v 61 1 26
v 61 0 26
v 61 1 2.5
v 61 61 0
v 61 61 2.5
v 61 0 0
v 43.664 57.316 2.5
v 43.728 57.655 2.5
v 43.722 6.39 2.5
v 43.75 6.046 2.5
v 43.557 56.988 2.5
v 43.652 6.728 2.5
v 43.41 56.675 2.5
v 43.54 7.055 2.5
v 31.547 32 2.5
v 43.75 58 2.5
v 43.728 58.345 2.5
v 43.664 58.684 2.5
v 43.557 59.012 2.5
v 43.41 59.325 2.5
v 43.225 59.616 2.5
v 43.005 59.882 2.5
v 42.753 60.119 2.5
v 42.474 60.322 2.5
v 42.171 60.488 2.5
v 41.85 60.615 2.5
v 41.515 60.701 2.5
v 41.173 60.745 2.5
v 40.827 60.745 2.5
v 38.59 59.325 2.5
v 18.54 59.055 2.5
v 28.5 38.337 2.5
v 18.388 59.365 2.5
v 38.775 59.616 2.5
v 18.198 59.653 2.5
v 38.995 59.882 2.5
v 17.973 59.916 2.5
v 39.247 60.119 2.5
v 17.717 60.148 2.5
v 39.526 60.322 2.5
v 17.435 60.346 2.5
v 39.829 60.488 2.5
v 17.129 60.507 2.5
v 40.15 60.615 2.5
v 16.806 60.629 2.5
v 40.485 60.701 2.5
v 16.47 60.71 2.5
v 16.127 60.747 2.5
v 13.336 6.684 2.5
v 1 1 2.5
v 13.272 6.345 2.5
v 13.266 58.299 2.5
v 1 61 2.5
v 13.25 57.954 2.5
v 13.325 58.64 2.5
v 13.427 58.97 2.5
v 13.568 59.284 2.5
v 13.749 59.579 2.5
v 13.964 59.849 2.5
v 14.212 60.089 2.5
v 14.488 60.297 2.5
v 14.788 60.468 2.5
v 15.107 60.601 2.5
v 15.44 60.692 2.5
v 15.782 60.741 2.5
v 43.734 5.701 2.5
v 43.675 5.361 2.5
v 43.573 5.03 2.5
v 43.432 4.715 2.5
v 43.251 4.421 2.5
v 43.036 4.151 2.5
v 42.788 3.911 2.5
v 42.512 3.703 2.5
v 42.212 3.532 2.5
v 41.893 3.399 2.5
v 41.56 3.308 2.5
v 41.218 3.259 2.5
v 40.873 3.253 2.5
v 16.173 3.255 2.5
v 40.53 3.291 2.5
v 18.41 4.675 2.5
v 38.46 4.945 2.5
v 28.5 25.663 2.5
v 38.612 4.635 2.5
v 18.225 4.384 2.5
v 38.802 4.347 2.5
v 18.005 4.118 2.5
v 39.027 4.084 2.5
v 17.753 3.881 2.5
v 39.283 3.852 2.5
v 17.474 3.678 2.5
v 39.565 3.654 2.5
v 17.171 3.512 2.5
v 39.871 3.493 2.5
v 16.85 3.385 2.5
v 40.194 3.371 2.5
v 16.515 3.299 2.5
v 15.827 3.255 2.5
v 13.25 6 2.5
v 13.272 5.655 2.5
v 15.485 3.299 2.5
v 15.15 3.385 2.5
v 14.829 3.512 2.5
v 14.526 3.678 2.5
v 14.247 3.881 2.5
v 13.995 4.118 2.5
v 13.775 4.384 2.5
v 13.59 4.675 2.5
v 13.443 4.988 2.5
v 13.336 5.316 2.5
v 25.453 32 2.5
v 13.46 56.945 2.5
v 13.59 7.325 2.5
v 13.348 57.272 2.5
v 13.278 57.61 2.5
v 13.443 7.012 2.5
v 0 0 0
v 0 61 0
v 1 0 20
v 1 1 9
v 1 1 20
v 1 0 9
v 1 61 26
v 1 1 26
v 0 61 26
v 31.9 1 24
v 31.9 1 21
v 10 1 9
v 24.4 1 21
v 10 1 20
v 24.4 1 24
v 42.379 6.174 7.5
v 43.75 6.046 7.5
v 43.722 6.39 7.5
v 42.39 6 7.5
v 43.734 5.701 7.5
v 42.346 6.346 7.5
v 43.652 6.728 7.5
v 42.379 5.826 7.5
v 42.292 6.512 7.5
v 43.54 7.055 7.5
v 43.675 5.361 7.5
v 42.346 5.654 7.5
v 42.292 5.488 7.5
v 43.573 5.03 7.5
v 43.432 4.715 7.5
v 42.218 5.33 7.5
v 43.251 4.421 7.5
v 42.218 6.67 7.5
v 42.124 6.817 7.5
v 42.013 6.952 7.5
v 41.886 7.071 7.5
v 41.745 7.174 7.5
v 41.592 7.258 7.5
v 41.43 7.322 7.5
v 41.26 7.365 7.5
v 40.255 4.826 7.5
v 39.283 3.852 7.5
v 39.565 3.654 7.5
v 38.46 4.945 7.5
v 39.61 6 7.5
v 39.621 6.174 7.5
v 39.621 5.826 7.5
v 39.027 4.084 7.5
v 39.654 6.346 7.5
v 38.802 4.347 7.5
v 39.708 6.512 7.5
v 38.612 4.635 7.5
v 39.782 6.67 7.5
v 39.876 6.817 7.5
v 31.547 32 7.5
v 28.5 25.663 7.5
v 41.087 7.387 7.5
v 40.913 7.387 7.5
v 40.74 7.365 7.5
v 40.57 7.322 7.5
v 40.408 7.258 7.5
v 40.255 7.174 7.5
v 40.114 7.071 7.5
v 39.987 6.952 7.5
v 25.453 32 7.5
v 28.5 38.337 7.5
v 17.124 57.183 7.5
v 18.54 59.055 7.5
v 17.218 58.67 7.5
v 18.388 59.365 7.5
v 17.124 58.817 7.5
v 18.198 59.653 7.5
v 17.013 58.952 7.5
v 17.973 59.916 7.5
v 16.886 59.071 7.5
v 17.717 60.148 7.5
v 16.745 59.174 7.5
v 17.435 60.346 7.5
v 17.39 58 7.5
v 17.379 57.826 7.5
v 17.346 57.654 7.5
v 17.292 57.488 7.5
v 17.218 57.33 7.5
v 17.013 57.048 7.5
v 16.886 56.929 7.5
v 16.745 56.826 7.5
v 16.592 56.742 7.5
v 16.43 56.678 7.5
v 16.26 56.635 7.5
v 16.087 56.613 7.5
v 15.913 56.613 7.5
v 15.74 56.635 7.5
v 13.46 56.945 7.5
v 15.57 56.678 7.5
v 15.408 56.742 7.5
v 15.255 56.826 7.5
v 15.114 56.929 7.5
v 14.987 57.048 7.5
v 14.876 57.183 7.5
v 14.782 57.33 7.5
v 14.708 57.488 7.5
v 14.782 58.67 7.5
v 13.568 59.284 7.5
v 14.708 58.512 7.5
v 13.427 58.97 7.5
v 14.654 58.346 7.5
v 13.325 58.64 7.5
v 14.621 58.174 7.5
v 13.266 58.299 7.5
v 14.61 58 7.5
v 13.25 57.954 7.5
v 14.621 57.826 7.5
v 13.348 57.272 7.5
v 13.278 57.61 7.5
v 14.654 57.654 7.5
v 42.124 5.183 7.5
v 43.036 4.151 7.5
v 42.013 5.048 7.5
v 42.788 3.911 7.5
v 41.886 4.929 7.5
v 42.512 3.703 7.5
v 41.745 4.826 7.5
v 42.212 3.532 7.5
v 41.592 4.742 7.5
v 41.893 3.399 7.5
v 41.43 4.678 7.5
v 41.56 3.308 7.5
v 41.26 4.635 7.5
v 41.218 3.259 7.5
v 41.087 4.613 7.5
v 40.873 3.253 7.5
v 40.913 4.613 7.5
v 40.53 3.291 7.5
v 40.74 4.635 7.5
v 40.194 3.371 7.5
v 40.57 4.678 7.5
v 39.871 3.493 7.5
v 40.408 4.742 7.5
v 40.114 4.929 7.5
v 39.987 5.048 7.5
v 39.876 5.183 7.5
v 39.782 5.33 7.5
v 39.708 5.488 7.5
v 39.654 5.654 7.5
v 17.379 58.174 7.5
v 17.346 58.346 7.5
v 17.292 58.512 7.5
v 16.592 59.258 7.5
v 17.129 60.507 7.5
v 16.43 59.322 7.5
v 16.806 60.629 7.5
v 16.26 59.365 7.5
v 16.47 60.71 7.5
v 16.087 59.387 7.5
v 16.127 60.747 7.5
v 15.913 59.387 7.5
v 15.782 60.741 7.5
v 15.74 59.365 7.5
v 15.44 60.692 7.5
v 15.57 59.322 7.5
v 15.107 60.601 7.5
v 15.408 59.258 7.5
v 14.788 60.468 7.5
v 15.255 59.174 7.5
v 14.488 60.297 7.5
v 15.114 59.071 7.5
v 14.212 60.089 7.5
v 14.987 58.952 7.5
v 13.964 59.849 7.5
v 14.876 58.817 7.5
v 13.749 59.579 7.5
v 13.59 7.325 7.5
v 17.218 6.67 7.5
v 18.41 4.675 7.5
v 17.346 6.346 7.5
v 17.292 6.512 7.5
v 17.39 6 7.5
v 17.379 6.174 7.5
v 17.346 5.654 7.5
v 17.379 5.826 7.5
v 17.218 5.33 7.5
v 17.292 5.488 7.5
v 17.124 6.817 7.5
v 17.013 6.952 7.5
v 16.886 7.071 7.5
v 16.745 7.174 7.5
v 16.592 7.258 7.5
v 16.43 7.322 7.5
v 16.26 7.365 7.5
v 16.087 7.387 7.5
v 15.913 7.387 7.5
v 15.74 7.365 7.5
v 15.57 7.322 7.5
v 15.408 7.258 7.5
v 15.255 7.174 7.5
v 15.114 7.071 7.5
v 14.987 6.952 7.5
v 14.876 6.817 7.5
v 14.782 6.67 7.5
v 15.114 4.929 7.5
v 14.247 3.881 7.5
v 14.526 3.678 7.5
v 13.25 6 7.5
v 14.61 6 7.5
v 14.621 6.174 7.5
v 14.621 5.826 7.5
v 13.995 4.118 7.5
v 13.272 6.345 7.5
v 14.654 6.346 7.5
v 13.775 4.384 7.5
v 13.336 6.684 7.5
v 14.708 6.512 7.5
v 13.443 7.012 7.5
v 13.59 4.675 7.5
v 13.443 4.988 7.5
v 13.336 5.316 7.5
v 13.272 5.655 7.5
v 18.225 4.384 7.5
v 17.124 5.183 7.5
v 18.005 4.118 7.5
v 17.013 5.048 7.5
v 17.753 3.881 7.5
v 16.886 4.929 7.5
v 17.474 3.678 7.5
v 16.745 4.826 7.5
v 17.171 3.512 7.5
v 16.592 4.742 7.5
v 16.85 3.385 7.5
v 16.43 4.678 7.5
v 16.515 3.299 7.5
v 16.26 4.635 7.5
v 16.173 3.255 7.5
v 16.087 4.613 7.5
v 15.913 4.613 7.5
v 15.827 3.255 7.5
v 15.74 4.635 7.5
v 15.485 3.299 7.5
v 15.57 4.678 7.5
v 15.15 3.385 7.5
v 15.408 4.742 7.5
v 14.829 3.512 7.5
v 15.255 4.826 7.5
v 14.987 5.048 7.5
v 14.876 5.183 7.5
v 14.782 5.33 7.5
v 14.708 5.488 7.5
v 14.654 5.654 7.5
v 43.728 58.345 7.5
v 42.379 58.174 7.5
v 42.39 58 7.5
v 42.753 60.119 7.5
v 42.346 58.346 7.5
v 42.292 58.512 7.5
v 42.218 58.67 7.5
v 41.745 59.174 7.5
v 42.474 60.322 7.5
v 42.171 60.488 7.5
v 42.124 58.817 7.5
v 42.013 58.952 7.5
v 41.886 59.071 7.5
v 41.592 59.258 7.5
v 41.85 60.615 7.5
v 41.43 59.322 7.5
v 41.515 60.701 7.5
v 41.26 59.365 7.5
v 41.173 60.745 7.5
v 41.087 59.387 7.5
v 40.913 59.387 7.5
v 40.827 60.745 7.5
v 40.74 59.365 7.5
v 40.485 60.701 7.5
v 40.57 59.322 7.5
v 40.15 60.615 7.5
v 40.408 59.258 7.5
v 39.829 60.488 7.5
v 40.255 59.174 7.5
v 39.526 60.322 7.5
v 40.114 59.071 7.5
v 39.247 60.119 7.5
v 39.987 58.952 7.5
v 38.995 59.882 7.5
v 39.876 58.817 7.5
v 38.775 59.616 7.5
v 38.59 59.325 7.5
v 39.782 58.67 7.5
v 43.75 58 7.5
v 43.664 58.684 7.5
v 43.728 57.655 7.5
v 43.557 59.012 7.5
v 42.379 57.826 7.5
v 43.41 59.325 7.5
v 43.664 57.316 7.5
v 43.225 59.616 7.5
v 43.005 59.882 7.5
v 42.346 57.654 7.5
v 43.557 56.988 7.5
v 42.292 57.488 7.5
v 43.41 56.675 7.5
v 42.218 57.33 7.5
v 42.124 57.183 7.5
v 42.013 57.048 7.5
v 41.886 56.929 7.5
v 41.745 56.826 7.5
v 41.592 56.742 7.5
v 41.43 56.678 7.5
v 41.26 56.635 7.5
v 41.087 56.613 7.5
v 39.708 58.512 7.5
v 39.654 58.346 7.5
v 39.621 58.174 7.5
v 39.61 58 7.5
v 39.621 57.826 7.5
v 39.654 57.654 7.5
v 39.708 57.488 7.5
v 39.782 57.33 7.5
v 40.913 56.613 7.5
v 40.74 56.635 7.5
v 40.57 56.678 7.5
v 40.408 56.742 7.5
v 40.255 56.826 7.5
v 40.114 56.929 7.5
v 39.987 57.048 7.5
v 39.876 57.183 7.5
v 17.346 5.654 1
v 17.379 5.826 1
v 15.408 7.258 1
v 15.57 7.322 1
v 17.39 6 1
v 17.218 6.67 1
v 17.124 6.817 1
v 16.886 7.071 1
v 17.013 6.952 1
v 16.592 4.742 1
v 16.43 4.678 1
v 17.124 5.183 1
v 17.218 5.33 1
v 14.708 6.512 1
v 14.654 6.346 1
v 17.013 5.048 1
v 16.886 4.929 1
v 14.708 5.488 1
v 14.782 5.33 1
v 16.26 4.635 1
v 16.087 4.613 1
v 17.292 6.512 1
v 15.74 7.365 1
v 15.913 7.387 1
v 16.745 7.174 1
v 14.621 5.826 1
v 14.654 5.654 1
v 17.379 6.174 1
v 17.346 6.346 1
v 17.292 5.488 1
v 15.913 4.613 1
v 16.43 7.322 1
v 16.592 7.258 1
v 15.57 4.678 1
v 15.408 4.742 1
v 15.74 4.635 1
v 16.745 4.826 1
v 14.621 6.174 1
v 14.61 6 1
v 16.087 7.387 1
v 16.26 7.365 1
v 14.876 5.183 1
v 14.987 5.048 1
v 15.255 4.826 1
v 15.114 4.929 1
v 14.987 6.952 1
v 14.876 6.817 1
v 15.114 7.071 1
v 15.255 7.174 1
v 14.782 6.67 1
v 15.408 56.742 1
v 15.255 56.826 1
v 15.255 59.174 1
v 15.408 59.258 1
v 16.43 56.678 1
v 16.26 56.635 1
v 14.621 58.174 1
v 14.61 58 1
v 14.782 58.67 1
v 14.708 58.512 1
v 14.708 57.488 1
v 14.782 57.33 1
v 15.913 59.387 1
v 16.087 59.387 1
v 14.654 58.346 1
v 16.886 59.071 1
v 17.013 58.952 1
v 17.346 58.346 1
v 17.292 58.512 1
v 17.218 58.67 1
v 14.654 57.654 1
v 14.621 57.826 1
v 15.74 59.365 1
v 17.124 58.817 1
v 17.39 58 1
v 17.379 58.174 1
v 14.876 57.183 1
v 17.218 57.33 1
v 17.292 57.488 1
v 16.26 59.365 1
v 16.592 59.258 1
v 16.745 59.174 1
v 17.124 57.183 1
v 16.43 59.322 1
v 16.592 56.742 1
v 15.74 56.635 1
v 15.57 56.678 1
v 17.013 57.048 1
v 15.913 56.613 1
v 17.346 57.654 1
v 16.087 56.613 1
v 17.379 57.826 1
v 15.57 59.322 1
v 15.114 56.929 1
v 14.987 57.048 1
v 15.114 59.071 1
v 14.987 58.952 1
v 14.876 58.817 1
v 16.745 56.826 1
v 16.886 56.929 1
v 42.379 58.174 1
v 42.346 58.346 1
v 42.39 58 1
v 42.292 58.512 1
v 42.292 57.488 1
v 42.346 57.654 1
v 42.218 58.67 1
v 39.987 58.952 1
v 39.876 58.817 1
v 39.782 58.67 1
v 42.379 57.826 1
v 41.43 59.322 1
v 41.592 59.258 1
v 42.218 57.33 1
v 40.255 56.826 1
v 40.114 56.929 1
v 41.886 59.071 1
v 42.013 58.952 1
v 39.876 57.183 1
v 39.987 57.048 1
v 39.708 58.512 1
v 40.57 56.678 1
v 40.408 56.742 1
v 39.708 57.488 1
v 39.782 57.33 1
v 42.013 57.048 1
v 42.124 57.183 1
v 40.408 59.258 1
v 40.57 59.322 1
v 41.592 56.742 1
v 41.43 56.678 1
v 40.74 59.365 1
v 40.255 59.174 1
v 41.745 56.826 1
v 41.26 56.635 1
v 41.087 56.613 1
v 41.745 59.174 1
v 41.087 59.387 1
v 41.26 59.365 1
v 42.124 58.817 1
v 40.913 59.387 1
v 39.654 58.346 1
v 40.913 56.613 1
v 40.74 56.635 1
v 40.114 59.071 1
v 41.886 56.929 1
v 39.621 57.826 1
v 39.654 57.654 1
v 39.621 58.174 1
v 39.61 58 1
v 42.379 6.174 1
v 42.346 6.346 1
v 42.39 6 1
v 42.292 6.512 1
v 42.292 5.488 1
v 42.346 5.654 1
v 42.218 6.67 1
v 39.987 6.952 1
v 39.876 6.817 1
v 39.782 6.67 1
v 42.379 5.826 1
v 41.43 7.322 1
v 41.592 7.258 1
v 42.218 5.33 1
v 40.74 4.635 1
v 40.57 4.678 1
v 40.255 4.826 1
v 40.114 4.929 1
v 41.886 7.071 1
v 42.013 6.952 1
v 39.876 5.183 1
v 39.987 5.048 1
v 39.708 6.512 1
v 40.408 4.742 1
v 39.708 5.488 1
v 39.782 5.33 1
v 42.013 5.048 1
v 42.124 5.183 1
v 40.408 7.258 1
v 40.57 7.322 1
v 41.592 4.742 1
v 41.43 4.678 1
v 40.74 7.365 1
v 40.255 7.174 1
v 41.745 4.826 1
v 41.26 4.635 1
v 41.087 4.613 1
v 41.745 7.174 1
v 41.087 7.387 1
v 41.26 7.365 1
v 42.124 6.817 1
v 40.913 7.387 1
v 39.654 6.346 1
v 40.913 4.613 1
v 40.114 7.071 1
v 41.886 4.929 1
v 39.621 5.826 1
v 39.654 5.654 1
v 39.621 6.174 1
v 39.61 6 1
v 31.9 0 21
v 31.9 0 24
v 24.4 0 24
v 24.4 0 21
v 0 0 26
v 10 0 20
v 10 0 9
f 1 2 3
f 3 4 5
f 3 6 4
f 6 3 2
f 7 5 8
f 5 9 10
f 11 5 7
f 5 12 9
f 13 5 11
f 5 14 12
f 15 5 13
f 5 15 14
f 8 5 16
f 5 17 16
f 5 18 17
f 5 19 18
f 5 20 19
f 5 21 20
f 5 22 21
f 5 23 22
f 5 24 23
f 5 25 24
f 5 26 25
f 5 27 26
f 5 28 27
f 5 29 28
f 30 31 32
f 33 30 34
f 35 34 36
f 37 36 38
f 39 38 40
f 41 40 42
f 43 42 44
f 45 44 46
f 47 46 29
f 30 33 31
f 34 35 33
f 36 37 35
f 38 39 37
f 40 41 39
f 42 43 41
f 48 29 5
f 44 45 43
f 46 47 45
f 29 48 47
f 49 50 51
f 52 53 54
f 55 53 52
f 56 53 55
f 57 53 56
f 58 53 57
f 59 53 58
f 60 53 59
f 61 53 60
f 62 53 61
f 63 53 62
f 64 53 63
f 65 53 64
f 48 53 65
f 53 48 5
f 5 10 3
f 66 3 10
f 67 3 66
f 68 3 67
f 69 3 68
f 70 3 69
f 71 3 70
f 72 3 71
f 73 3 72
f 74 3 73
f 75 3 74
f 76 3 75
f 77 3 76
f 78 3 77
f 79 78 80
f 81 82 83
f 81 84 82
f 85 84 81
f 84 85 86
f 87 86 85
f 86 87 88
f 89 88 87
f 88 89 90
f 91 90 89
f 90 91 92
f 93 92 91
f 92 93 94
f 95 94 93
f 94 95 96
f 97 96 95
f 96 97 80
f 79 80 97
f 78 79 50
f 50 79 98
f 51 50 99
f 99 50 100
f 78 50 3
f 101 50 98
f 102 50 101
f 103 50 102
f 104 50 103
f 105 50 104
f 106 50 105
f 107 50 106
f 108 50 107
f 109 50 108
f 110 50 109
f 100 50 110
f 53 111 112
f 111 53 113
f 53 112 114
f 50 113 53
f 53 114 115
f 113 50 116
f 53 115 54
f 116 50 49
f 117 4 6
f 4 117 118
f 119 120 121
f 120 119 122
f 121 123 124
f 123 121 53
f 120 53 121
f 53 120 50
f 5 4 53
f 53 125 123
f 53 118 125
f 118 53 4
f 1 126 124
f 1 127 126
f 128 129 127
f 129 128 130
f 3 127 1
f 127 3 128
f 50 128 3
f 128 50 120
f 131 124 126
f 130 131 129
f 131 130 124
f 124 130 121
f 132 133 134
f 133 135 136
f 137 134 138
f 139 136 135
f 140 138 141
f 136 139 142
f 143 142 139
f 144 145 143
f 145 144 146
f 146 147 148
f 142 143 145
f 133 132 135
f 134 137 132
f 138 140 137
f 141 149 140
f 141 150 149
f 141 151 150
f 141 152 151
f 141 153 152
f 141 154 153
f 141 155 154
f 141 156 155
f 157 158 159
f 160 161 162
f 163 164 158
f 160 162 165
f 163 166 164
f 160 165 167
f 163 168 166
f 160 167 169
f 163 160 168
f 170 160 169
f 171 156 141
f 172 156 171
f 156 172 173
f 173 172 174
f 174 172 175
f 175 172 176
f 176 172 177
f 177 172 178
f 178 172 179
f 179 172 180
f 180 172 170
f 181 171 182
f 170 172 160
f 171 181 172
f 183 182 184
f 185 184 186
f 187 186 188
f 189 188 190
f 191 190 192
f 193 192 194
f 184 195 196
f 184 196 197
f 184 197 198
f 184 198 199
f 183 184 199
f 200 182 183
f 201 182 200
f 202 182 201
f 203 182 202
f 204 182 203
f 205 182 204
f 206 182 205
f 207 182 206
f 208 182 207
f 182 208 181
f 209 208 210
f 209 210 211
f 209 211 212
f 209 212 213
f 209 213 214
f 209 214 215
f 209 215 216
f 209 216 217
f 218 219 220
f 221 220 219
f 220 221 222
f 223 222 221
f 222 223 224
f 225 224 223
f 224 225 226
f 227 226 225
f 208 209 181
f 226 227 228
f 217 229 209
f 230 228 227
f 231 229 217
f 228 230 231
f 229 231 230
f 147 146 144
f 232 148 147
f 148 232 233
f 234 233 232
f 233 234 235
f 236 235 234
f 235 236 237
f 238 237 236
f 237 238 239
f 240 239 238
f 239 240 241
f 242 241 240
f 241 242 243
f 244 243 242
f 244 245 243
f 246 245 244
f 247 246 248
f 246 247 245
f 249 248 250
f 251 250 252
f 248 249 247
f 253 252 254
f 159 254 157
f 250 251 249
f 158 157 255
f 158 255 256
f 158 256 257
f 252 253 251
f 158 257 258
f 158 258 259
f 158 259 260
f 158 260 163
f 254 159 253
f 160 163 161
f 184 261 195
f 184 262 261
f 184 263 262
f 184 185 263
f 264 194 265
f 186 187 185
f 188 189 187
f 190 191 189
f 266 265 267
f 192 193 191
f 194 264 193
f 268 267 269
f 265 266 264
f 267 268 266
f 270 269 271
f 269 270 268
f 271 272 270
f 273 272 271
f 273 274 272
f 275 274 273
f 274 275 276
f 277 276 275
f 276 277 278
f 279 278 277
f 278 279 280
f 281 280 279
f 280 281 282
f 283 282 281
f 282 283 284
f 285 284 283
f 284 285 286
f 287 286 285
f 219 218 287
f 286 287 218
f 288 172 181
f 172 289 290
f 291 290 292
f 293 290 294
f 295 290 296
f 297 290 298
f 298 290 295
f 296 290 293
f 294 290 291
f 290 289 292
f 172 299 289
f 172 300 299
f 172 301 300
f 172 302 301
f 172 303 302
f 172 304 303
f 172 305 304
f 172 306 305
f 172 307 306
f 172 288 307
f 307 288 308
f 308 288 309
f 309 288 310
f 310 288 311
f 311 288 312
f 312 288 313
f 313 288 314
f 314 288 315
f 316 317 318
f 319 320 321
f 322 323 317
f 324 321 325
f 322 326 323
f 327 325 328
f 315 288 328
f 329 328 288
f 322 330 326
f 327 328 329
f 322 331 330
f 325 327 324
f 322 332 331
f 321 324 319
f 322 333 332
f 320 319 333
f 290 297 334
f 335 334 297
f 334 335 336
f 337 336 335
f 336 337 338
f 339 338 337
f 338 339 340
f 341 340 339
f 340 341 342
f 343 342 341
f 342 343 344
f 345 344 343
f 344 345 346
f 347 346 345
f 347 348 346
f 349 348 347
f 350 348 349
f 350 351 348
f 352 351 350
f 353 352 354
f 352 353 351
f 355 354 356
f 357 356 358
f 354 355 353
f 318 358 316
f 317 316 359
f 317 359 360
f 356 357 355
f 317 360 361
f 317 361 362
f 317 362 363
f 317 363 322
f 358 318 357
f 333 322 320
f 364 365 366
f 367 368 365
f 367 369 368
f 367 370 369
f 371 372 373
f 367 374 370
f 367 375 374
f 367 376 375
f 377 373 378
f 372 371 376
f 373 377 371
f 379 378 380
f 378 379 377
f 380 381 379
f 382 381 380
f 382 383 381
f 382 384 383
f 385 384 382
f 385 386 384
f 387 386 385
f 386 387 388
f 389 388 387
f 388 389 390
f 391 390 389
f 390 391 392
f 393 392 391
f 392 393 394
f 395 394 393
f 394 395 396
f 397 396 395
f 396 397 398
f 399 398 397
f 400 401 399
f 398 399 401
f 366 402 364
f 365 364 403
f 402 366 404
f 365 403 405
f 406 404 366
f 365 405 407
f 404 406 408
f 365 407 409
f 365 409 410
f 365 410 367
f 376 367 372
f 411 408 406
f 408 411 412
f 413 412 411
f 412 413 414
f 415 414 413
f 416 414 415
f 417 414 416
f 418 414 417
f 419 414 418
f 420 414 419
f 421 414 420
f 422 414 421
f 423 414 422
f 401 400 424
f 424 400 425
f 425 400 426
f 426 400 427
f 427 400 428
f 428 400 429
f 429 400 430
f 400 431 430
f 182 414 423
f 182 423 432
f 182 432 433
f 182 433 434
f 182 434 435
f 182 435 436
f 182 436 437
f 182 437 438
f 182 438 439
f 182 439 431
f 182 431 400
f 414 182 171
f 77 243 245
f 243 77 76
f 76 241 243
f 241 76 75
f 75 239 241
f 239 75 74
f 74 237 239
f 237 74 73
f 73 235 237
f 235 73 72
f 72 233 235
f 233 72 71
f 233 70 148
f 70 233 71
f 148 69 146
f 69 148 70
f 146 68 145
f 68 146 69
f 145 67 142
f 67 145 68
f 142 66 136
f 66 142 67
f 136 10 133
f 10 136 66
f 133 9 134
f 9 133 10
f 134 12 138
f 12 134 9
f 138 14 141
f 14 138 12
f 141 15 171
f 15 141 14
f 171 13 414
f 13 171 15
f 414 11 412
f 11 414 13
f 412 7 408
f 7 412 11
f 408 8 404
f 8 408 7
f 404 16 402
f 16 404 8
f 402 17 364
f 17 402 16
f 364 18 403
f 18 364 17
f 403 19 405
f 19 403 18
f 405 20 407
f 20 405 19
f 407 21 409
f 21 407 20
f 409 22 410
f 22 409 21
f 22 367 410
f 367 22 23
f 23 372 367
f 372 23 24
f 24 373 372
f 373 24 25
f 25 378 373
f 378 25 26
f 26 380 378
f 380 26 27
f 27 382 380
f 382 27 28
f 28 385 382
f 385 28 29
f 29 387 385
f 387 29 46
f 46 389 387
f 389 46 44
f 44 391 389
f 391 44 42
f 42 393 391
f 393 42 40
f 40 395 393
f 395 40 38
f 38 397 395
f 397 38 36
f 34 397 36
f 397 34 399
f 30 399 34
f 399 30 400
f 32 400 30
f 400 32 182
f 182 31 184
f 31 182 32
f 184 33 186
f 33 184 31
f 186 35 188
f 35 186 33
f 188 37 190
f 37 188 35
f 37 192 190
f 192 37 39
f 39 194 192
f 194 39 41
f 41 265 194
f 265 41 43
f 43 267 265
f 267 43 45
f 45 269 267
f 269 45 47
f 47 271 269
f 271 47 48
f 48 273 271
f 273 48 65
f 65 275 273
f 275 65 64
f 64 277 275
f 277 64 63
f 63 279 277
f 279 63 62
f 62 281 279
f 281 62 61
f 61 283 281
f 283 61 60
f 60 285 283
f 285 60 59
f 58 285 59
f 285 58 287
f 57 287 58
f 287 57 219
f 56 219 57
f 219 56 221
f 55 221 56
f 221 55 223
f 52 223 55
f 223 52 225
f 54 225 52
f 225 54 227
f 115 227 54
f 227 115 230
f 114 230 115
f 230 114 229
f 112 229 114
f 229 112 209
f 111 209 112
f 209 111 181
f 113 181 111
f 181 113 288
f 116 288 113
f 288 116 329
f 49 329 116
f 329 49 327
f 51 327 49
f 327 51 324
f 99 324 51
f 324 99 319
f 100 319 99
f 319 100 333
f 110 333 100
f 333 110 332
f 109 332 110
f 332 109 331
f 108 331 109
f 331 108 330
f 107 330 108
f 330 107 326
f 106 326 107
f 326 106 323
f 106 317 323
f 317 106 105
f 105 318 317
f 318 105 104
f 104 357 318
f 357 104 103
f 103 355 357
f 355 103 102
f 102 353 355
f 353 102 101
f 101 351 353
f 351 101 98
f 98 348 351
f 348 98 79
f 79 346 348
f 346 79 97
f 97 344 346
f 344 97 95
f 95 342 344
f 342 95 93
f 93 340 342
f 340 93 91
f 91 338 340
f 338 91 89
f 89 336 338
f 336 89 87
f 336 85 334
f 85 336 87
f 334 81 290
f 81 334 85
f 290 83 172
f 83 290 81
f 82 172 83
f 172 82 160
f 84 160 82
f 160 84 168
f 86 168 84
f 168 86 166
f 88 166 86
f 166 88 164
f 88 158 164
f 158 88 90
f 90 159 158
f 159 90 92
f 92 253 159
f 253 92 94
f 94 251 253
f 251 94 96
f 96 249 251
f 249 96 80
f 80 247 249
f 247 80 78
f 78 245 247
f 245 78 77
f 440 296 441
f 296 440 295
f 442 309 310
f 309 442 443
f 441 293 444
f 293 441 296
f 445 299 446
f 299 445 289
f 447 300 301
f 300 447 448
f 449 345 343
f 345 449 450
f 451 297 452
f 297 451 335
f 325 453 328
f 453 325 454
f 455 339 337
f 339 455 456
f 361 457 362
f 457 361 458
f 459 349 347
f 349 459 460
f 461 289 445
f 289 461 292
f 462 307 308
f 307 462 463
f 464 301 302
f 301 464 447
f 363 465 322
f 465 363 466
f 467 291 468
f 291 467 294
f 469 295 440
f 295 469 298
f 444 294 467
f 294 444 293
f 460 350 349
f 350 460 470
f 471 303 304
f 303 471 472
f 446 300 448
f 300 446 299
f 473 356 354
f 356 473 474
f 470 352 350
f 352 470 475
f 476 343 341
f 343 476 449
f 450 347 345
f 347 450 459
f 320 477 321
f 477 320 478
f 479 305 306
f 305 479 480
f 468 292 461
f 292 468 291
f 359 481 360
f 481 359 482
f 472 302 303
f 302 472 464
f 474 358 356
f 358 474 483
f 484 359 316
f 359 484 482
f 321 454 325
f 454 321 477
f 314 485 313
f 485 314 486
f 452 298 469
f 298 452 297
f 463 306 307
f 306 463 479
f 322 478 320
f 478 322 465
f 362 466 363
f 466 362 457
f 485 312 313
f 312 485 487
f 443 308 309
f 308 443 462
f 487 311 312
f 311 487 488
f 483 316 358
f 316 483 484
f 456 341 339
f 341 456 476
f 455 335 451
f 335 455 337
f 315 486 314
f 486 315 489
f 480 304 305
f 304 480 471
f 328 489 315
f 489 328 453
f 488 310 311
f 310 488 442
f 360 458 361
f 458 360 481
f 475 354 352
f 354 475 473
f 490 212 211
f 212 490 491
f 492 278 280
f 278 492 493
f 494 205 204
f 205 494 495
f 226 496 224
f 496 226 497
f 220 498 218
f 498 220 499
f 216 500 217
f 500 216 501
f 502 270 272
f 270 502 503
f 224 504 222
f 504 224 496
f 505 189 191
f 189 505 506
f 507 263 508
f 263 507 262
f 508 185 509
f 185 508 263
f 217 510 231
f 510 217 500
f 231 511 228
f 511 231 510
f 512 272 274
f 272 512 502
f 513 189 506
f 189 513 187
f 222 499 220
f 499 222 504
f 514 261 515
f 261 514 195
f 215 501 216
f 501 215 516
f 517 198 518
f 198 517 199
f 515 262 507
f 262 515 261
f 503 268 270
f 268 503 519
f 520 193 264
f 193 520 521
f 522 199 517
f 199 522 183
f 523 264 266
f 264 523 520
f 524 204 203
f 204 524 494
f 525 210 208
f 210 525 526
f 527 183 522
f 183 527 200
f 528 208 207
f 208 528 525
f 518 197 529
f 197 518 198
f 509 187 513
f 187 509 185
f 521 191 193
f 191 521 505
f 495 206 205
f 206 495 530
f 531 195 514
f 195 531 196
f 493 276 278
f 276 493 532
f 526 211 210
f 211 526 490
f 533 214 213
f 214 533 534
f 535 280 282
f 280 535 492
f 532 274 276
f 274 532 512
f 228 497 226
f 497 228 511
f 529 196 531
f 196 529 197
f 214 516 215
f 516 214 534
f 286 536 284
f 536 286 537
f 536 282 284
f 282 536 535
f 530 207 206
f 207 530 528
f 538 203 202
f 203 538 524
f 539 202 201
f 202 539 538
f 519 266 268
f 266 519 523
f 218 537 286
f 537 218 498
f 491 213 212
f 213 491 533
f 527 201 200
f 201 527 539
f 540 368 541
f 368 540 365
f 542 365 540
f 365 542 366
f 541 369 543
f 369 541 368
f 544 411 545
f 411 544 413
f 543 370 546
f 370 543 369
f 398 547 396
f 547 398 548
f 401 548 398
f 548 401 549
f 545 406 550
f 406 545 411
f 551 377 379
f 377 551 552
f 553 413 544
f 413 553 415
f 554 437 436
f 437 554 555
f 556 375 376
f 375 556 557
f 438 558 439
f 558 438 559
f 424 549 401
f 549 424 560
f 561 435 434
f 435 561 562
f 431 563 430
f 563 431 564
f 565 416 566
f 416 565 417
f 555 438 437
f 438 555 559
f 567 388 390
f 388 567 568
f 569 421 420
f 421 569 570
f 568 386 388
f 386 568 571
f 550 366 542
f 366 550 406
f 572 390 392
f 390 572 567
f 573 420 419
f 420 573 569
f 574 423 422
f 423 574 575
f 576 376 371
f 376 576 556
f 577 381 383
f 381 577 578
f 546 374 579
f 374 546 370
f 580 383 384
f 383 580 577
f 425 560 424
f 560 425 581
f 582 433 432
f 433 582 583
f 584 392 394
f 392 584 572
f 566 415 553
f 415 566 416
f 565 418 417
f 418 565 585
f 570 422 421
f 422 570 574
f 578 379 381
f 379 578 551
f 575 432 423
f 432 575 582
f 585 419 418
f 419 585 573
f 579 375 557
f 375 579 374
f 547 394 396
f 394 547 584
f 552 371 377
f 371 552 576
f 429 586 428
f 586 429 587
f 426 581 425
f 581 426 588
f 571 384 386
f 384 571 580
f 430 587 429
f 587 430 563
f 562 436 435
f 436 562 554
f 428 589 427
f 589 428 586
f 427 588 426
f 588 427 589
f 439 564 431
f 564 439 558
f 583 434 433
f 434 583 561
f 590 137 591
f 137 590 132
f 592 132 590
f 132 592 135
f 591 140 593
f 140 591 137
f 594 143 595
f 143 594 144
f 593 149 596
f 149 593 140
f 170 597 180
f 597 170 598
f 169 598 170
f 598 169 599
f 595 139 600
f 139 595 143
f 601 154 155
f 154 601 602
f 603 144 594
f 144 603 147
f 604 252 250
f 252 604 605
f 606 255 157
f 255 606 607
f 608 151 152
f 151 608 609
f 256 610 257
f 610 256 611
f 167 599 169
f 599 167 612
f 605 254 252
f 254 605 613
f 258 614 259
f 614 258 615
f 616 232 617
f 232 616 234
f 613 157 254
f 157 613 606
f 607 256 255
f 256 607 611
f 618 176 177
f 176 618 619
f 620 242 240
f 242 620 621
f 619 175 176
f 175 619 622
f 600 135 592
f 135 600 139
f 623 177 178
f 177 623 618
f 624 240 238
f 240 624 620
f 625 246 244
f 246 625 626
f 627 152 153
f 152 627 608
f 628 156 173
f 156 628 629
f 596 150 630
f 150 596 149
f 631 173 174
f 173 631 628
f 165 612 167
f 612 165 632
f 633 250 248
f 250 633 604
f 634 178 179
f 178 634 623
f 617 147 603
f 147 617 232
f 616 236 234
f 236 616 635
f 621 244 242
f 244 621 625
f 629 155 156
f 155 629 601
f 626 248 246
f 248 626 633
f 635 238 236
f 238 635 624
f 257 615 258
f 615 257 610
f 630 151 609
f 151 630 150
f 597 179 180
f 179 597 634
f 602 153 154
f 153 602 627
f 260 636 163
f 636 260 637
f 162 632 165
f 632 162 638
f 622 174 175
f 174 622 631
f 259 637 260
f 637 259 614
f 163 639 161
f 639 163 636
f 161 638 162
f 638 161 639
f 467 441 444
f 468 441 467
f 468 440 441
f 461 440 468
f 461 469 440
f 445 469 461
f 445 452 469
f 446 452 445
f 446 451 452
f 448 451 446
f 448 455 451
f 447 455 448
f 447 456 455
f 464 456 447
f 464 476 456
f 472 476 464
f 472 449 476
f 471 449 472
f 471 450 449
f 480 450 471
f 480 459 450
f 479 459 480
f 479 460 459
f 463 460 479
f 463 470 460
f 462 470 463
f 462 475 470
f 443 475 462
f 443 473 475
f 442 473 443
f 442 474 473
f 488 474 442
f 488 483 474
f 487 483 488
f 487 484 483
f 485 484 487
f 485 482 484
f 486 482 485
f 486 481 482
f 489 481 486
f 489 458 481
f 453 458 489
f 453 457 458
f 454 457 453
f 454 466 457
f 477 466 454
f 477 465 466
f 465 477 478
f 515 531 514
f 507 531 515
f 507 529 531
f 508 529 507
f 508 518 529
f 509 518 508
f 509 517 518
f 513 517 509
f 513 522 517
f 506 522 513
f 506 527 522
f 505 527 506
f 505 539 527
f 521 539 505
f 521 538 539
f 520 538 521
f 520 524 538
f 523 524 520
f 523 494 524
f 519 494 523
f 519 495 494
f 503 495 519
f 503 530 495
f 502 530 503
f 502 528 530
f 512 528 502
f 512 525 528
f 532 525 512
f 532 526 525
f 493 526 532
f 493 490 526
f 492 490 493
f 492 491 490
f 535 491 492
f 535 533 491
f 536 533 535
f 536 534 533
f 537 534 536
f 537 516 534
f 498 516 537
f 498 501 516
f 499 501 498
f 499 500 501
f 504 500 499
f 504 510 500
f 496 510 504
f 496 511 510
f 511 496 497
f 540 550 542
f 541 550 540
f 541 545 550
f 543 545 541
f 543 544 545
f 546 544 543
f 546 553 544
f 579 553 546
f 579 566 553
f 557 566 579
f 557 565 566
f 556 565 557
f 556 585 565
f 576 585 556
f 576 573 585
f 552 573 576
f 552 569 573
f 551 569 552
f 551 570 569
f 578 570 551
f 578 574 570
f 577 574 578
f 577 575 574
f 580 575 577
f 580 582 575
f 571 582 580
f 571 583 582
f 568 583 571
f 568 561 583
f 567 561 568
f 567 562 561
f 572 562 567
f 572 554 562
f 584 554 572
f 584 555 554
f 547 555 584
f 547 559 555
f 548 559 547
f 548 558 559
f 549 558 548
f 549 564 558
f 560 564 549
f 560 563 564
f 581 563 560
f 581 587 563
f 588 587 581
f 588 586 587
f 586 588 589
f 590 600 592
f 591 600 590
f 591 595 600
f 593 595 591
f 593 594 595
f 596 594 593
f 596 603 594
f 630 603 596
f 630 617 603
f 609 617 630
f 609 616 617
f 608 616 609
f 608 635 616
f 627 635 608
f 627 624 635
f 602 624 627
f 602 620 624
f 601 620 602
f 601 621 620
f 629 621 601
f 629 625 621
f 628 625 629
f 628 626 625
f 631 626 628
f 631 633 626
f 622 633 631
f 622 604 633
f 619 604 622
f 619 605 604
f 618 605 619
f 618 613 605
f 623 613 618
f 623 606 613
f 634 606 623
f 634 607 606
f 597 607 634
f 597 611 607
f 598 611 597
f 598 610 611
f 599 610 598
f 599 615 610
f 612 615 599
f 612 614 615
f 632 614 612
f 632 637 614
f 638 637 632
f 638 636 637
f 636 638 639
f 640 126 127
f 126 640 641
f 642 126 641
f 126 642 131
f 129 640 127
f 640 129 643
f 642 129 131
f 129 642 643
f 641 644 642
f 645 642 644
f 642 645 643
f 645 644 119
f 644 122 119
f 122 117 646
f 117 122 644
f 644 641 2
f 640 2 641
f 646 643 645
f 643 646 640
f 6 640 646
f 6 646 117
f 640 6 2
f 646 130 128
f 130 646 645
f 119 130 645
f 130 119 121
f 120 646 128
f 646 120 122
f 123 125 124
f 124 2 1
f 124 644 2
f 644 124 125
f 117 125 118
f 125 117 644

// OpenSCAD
// file: screw_matrics.scad
 
// #4 screw parameters
number4_screw_hole_tap_diameter=2.78;
number4_screw_thread_diamater=2.84;
// No-drag through-hole diameter
number4_screw_hole_diameter=number4_screw_thread_diamater+0.7;
number4_screw_stem_length=8;
number4_screw_head_diameter=5.5;

// M3 screw parameters
m3_screw_hole_tap_diameter=2.9;
m3_screw_thread_diamater=3;
// No-drag through-hole diameter
m3_screw_hole_diameter=m3_screw_thread_diamater+0.7;
m3_screw_stem_length=5;
m3_screw_head_diameter=5.5;
// file: roundedCube.scad
/*
	Usage
	=====
	Prototype: roundedCube(dim, r, x, y, z, xcorners, ycorners, zcorners, $fn)
	Arguments:
		-      dim = Array of x,y,z numbers representing cube size
		-        r = Radius of corners. Default: 1
		-        x = Round the corners along the X axis of the cube. Default: false
		-        y = Round the corners along the Y axis of the cube. Default: false
		-        z = Round the corners along the Z axis of the cube. Default: true
		- xcorners = Array of 4 booleans, one for each X side of the cube, if true then round that side. Default: [true, true, true, true]
		- ycorners = Array of 4 booleans, one for each Y side of the cube, if true then round that side. Default: [true, true, true, true]
		- zcorners = Array of 4 booleans, one for each Z side of the cube, if true then round that side. Default: [true, true, true, true]
		-   center = Whether to render the cube centered or not. Default: false
		-      $fn = How smooth you want the rounding to be. Default: 128

	Thanks to robert@cosmicrealms.com from https://github.com/Sembiance/openscad-modules
    For a starting point for the project
*/

// Example code:

/*cube([5, 10, 4]);

translate([8, 0, 0]) { roundedCube([5, 10, 4], r=1); }
translate([16, 0, 0]) { roundedCube([5, 10, 4], r=1, zcorners=[true, false, true, false]); }

translate([24, 0, 0]) { roundedCube([5, 10, 4], r=1, y=true, z=false); }
translate([32, 0, 0]) { roundedCube([5, 10, 4], r=1, x=true, z=false); }
translate([40, 0, 0]) { roundedCube([5, 10, 4], r=1, x=true, y=true, z=true); }
*/

module roundedCube(dim, r=1, x=false, y=false, z=true, xcorners=[true,true,true,true], ycorners=[true,true,true,true], zcorners=[true,true,true,true], center=false, $fn=128)
{
	translate([(center==true ? (-(dim[0]/2)) : 0), (center==true ? (-(dim[1]/2)) : 0), (center==true ? (-(dim[2]/2)) : 0)])
	{
		difference()
		{
			cube(dim);

			if(z)
			{
				translate([0, 0, -0.1])
				{
					if(zcorners[0])
						translate([0, dim[1]-r]) { rotateAround([0, 0, 90], [r/2, r/2, 0]) { meniscus(h=dim[2], r=r, fn=$fn); } }
					if(zcorners[1])
						translate([dim[0]-r, dim[1]-r]) { meniscus(h=dim[2], r=r, fn=$fn); }
					if(zcorners[2])
						translate([dim[0]-r, 0]) { rotateAround([0, 0, -90], [r/2, r/2, 0]) { meniscus(h=dim[2], r=r, fn=$fn); } }
					if(zcorners[3])
						rotateAround([0, 0, -180], [r/2, r/2, 0]) { meniscus(h=dim[2], r=r, fn=$fn); }
				}
			}

			if(y)
			{
				translate([0, -0.1, 0])
				{
					if(ycorners[0])
						translate([0, 0, dim[2]-r]) { rotateAround([0, 180, 0], [r/2, 0, r/2]) { rotateAround([-90, 0, 0], [0, r/2, r/2]) { meniscus(h=dim[1], r=r); } } }
					if(ycorners[1])
						translate([dim[0]-r, 0, dim[2]-r]) { rotateAround([0, -90, 0], [r/2, 0, r/2]) { rotateAround([-90, 0, 0], [0, r/2, r/2]) { meniscus(h=dim[1], r=r); } } }
					if(ycorners[2])
						translate([dim[0]-r, 0]) { rotateAround([-90, 0, 0], [0, r/2, r/2]) { meniscus(h=dim[1], r=r); } }
					if(ycorners[3])
						rotateAround([0, 90, 0], [r/2, 0, r/2]) { rotateAround([-90, 0, 0], [0, r/2, r/2]) { meniscus(h=dim[1], r=r); } }
				}
			}

			if(x)
			{
				translate([-0.1, 0, 0])
				{
					if(xcorners[0])
						translate([0, dim[1]-r]) { rotateAround([0, 90, 0], [r/2, 0, r/2]) { meniscus(h=dim[0], r=r); } }
					if(xcorners[1])
						translate([0, dim[1]-r, dim[2]-r]) { rotateAround([90, 0, 0], [0, r/2, r/2]) { rotateAround([0, 90, 0], [r/2, 0, r/2]) { meniscus(h=dim[0], r=r); } } }
					if(xcorners[2])
						translate([0, 0, dim[2]-r]) { rotateAround([180, 0, 0], [0, r/2, r/2]) { rotateAround([0, 90, 0], [r/2, 0, r/2]) { meniscus(h=dim[0], r=r); } } }
					if(xcorners[3])
						rotateAround([-90, 0, 0], [0, r/2, r/2]) { rotateAround([0, 90, 0], [r/2, 0, r/2]) { meniscus(h=dim[0], r=r); } }
				}
			}
		}
	}
}

module meniscus(h, r, fn=128)
{
	$fn=fn;

	difference()
	{
		cube([r+0.2, r+0.2, h+0.2]);
		translate([0, 0, -0.1]) { cylinder(h=h+0.4, r=r); }
	}
}

module rotateAround(a, v) { translate(v) { rotate(a) { translate(-v) { children(); } } } }
// main file
/* By: Ye Zhang (mr.yezhang@gmail.com)
   Date: June 6, 2020
    HW-389 base. To be embedded into panel. 
*/

use <roundedCube.scad>
include <screw_matrics.scad>

wall_thickness=1;

// Add this to measured sizes and get opening sizes. 
free_play_size=2;

// both x and y minimum length is 60. Can be longer to accomdate larger panel size.
base_x_length=60;
base_y_length=60;
// The minimum height covering HW-389 and ESP8266 V3 board, same origin as x wall hole origon---PCB top surface.
base_z_length=17;

first_hole_center_offset_x=15;
first_hole_center_offset_y=5;
screw_hole_x_distance=25;
screw_hole_y_distance=52;

pcb_board_thickness=1.5;
under_pcb_board_pin_extrusion_distance=5;

// This makes sure the screw won't penetrate base.
box_button_no_screw_thickness=1;
box_bottom_thickness=number4_screw_stem_length-pcb_board_thickness-under_pcb_board_pin_extrusion_distance+box_button_no_screw_thickness;

assert(box_bottom_thickness >= 1, "Box bottom thickness must be >= 1");
echo("*** Use M3x5 screw ***");
echo("The minimum box bottom thickness is ", box_bottom_thickness);

x_side_wall_holes_origin_z_offset=under_pcb_board_pin_extrusion_distance+pcb_board_thickness+box_bottom_thickness;
// dc_plug_center_y_offset=4.5;
dc_plug_x_offset=0;
dc_plug_x_length=9;
dc_plug_z_length=11;
dc_plug_z_offset=0+x_side_wall_holes_origin_z_offset;

usb_plug_x_offset=23.4;
usb_plug_x_length=7.5;
usb_plug_z_length=3;
usb_plug_z_offset=12+x_side_wall_holes_origin_z_offset;


side_wall_z_length=base_z_length+x_side_wall_holes_origin_z_offset;

module pcb_board_one_raise() {
    hull() {
            translate([screw_hole_x_distance, screw_hole_y_distance, 0]) 
                circle(d=number4_screw_head_diameter, $fn=50);
            circle(d=number4_screw_head_diameter, $fn=50);
    }
}
/* Pin extruded under PCB board. Raise the board for clearance */
module pcb_board_raise() {
    linear_extrude(height=under_pcb_board_pin_extrusion_distance, center=false, convexity = 10) 
        translate([first_hole_center_offset_x, first_hole_center_offset_y, 0]) {
            pcb_board_one_raise();
            // The other raise. 
            translate([screw_hole_x_distance, 0, 0])
                rotate([0, 0, atan(screw_hole_x_distance/screw_hole_y_distance)*2]) // 
                    pcb_board_one_raise();
        }
}

module usb_plug_hole() {
    translate([usb_plug_x_offset, 0, usb_plug_z_offset]) 
        cube([usb_plug_x_length, wall_thickness, usb_plug_z_length]);
}

module dc_plug_hole() {
    translate([dc_plug_x_offset, 0, dc_plug_z_offset]) 
        cube([dc_plug_x_length, wall_thickness, dc_plug_z_length]);
}

/* The wall along x axis, from origin */
module x_side_wall() {
    difference() {
        cube([base_x_length, wall_thickness, side_wall_z_length]);
        translate([0, 0, 0]) {
            usb_plug_hole();
            dc_plug_hole();
        }
    }
}

/* The wall along y axis, from origin */
module y_side_wall() {
    cube([wall_thickness, base_y_length+wall_thickness, side_wall_z_length]);
}


module HW_389_base() {
    union() {
        translate([wall_thickness, 0, 0]) {
            translate([0, wall_thickness, 0]) {
                difference() {
                    union() {
                        cube([base_x_length, base_y_length, box_bottom_thickness]);
                        translate([0, 0, box_bottom_thickness])
                            pcb_board_raise();
                    }
                    
                    first_screw_hole();
                    second_screw_hole();    
                    third_screw_hole();
                    fourth_screw_hole();
                }
                
                // The plate to plug through holes, make sure there is box_button_no_screw_thickness at bottom. 
                cube([base_x_length, base_y_length, box_button_no_screw_thickness]);
            }
            x_side_wall();
        }
        
        y_side_wall();
    }
}

module screw_hole() {
    #cylinder(d=number4_screw_hole_tap_diameter, h=wall_thickness*20, center=false, $fn=50);
}

module first_screw_hole() {
    translate([first_hole_center_offset_x, first_hole_center_offset_y, -1]) 
        screw_hole();
}

module second_screw_hole() {
    translate([first_hole_center_offset_x, first_hole_center_offset_y+screw_hole_y_distance, -1]) 
        screw_hole();
}

module third_screw_hole() {
    translate([first_hole_center_offset_x+screw_hole_x_distance, first_hole_center_offset_y+screw_hole_y_distance, -1]) 
        screw_hole();
}

module fourth_screw_hole() {
    translate([first_hole_center_offset_x+screw_hole_x_distance, first_hole_center_offset_y, -1]) 
        screw_hole();
}



HW_389_base();
